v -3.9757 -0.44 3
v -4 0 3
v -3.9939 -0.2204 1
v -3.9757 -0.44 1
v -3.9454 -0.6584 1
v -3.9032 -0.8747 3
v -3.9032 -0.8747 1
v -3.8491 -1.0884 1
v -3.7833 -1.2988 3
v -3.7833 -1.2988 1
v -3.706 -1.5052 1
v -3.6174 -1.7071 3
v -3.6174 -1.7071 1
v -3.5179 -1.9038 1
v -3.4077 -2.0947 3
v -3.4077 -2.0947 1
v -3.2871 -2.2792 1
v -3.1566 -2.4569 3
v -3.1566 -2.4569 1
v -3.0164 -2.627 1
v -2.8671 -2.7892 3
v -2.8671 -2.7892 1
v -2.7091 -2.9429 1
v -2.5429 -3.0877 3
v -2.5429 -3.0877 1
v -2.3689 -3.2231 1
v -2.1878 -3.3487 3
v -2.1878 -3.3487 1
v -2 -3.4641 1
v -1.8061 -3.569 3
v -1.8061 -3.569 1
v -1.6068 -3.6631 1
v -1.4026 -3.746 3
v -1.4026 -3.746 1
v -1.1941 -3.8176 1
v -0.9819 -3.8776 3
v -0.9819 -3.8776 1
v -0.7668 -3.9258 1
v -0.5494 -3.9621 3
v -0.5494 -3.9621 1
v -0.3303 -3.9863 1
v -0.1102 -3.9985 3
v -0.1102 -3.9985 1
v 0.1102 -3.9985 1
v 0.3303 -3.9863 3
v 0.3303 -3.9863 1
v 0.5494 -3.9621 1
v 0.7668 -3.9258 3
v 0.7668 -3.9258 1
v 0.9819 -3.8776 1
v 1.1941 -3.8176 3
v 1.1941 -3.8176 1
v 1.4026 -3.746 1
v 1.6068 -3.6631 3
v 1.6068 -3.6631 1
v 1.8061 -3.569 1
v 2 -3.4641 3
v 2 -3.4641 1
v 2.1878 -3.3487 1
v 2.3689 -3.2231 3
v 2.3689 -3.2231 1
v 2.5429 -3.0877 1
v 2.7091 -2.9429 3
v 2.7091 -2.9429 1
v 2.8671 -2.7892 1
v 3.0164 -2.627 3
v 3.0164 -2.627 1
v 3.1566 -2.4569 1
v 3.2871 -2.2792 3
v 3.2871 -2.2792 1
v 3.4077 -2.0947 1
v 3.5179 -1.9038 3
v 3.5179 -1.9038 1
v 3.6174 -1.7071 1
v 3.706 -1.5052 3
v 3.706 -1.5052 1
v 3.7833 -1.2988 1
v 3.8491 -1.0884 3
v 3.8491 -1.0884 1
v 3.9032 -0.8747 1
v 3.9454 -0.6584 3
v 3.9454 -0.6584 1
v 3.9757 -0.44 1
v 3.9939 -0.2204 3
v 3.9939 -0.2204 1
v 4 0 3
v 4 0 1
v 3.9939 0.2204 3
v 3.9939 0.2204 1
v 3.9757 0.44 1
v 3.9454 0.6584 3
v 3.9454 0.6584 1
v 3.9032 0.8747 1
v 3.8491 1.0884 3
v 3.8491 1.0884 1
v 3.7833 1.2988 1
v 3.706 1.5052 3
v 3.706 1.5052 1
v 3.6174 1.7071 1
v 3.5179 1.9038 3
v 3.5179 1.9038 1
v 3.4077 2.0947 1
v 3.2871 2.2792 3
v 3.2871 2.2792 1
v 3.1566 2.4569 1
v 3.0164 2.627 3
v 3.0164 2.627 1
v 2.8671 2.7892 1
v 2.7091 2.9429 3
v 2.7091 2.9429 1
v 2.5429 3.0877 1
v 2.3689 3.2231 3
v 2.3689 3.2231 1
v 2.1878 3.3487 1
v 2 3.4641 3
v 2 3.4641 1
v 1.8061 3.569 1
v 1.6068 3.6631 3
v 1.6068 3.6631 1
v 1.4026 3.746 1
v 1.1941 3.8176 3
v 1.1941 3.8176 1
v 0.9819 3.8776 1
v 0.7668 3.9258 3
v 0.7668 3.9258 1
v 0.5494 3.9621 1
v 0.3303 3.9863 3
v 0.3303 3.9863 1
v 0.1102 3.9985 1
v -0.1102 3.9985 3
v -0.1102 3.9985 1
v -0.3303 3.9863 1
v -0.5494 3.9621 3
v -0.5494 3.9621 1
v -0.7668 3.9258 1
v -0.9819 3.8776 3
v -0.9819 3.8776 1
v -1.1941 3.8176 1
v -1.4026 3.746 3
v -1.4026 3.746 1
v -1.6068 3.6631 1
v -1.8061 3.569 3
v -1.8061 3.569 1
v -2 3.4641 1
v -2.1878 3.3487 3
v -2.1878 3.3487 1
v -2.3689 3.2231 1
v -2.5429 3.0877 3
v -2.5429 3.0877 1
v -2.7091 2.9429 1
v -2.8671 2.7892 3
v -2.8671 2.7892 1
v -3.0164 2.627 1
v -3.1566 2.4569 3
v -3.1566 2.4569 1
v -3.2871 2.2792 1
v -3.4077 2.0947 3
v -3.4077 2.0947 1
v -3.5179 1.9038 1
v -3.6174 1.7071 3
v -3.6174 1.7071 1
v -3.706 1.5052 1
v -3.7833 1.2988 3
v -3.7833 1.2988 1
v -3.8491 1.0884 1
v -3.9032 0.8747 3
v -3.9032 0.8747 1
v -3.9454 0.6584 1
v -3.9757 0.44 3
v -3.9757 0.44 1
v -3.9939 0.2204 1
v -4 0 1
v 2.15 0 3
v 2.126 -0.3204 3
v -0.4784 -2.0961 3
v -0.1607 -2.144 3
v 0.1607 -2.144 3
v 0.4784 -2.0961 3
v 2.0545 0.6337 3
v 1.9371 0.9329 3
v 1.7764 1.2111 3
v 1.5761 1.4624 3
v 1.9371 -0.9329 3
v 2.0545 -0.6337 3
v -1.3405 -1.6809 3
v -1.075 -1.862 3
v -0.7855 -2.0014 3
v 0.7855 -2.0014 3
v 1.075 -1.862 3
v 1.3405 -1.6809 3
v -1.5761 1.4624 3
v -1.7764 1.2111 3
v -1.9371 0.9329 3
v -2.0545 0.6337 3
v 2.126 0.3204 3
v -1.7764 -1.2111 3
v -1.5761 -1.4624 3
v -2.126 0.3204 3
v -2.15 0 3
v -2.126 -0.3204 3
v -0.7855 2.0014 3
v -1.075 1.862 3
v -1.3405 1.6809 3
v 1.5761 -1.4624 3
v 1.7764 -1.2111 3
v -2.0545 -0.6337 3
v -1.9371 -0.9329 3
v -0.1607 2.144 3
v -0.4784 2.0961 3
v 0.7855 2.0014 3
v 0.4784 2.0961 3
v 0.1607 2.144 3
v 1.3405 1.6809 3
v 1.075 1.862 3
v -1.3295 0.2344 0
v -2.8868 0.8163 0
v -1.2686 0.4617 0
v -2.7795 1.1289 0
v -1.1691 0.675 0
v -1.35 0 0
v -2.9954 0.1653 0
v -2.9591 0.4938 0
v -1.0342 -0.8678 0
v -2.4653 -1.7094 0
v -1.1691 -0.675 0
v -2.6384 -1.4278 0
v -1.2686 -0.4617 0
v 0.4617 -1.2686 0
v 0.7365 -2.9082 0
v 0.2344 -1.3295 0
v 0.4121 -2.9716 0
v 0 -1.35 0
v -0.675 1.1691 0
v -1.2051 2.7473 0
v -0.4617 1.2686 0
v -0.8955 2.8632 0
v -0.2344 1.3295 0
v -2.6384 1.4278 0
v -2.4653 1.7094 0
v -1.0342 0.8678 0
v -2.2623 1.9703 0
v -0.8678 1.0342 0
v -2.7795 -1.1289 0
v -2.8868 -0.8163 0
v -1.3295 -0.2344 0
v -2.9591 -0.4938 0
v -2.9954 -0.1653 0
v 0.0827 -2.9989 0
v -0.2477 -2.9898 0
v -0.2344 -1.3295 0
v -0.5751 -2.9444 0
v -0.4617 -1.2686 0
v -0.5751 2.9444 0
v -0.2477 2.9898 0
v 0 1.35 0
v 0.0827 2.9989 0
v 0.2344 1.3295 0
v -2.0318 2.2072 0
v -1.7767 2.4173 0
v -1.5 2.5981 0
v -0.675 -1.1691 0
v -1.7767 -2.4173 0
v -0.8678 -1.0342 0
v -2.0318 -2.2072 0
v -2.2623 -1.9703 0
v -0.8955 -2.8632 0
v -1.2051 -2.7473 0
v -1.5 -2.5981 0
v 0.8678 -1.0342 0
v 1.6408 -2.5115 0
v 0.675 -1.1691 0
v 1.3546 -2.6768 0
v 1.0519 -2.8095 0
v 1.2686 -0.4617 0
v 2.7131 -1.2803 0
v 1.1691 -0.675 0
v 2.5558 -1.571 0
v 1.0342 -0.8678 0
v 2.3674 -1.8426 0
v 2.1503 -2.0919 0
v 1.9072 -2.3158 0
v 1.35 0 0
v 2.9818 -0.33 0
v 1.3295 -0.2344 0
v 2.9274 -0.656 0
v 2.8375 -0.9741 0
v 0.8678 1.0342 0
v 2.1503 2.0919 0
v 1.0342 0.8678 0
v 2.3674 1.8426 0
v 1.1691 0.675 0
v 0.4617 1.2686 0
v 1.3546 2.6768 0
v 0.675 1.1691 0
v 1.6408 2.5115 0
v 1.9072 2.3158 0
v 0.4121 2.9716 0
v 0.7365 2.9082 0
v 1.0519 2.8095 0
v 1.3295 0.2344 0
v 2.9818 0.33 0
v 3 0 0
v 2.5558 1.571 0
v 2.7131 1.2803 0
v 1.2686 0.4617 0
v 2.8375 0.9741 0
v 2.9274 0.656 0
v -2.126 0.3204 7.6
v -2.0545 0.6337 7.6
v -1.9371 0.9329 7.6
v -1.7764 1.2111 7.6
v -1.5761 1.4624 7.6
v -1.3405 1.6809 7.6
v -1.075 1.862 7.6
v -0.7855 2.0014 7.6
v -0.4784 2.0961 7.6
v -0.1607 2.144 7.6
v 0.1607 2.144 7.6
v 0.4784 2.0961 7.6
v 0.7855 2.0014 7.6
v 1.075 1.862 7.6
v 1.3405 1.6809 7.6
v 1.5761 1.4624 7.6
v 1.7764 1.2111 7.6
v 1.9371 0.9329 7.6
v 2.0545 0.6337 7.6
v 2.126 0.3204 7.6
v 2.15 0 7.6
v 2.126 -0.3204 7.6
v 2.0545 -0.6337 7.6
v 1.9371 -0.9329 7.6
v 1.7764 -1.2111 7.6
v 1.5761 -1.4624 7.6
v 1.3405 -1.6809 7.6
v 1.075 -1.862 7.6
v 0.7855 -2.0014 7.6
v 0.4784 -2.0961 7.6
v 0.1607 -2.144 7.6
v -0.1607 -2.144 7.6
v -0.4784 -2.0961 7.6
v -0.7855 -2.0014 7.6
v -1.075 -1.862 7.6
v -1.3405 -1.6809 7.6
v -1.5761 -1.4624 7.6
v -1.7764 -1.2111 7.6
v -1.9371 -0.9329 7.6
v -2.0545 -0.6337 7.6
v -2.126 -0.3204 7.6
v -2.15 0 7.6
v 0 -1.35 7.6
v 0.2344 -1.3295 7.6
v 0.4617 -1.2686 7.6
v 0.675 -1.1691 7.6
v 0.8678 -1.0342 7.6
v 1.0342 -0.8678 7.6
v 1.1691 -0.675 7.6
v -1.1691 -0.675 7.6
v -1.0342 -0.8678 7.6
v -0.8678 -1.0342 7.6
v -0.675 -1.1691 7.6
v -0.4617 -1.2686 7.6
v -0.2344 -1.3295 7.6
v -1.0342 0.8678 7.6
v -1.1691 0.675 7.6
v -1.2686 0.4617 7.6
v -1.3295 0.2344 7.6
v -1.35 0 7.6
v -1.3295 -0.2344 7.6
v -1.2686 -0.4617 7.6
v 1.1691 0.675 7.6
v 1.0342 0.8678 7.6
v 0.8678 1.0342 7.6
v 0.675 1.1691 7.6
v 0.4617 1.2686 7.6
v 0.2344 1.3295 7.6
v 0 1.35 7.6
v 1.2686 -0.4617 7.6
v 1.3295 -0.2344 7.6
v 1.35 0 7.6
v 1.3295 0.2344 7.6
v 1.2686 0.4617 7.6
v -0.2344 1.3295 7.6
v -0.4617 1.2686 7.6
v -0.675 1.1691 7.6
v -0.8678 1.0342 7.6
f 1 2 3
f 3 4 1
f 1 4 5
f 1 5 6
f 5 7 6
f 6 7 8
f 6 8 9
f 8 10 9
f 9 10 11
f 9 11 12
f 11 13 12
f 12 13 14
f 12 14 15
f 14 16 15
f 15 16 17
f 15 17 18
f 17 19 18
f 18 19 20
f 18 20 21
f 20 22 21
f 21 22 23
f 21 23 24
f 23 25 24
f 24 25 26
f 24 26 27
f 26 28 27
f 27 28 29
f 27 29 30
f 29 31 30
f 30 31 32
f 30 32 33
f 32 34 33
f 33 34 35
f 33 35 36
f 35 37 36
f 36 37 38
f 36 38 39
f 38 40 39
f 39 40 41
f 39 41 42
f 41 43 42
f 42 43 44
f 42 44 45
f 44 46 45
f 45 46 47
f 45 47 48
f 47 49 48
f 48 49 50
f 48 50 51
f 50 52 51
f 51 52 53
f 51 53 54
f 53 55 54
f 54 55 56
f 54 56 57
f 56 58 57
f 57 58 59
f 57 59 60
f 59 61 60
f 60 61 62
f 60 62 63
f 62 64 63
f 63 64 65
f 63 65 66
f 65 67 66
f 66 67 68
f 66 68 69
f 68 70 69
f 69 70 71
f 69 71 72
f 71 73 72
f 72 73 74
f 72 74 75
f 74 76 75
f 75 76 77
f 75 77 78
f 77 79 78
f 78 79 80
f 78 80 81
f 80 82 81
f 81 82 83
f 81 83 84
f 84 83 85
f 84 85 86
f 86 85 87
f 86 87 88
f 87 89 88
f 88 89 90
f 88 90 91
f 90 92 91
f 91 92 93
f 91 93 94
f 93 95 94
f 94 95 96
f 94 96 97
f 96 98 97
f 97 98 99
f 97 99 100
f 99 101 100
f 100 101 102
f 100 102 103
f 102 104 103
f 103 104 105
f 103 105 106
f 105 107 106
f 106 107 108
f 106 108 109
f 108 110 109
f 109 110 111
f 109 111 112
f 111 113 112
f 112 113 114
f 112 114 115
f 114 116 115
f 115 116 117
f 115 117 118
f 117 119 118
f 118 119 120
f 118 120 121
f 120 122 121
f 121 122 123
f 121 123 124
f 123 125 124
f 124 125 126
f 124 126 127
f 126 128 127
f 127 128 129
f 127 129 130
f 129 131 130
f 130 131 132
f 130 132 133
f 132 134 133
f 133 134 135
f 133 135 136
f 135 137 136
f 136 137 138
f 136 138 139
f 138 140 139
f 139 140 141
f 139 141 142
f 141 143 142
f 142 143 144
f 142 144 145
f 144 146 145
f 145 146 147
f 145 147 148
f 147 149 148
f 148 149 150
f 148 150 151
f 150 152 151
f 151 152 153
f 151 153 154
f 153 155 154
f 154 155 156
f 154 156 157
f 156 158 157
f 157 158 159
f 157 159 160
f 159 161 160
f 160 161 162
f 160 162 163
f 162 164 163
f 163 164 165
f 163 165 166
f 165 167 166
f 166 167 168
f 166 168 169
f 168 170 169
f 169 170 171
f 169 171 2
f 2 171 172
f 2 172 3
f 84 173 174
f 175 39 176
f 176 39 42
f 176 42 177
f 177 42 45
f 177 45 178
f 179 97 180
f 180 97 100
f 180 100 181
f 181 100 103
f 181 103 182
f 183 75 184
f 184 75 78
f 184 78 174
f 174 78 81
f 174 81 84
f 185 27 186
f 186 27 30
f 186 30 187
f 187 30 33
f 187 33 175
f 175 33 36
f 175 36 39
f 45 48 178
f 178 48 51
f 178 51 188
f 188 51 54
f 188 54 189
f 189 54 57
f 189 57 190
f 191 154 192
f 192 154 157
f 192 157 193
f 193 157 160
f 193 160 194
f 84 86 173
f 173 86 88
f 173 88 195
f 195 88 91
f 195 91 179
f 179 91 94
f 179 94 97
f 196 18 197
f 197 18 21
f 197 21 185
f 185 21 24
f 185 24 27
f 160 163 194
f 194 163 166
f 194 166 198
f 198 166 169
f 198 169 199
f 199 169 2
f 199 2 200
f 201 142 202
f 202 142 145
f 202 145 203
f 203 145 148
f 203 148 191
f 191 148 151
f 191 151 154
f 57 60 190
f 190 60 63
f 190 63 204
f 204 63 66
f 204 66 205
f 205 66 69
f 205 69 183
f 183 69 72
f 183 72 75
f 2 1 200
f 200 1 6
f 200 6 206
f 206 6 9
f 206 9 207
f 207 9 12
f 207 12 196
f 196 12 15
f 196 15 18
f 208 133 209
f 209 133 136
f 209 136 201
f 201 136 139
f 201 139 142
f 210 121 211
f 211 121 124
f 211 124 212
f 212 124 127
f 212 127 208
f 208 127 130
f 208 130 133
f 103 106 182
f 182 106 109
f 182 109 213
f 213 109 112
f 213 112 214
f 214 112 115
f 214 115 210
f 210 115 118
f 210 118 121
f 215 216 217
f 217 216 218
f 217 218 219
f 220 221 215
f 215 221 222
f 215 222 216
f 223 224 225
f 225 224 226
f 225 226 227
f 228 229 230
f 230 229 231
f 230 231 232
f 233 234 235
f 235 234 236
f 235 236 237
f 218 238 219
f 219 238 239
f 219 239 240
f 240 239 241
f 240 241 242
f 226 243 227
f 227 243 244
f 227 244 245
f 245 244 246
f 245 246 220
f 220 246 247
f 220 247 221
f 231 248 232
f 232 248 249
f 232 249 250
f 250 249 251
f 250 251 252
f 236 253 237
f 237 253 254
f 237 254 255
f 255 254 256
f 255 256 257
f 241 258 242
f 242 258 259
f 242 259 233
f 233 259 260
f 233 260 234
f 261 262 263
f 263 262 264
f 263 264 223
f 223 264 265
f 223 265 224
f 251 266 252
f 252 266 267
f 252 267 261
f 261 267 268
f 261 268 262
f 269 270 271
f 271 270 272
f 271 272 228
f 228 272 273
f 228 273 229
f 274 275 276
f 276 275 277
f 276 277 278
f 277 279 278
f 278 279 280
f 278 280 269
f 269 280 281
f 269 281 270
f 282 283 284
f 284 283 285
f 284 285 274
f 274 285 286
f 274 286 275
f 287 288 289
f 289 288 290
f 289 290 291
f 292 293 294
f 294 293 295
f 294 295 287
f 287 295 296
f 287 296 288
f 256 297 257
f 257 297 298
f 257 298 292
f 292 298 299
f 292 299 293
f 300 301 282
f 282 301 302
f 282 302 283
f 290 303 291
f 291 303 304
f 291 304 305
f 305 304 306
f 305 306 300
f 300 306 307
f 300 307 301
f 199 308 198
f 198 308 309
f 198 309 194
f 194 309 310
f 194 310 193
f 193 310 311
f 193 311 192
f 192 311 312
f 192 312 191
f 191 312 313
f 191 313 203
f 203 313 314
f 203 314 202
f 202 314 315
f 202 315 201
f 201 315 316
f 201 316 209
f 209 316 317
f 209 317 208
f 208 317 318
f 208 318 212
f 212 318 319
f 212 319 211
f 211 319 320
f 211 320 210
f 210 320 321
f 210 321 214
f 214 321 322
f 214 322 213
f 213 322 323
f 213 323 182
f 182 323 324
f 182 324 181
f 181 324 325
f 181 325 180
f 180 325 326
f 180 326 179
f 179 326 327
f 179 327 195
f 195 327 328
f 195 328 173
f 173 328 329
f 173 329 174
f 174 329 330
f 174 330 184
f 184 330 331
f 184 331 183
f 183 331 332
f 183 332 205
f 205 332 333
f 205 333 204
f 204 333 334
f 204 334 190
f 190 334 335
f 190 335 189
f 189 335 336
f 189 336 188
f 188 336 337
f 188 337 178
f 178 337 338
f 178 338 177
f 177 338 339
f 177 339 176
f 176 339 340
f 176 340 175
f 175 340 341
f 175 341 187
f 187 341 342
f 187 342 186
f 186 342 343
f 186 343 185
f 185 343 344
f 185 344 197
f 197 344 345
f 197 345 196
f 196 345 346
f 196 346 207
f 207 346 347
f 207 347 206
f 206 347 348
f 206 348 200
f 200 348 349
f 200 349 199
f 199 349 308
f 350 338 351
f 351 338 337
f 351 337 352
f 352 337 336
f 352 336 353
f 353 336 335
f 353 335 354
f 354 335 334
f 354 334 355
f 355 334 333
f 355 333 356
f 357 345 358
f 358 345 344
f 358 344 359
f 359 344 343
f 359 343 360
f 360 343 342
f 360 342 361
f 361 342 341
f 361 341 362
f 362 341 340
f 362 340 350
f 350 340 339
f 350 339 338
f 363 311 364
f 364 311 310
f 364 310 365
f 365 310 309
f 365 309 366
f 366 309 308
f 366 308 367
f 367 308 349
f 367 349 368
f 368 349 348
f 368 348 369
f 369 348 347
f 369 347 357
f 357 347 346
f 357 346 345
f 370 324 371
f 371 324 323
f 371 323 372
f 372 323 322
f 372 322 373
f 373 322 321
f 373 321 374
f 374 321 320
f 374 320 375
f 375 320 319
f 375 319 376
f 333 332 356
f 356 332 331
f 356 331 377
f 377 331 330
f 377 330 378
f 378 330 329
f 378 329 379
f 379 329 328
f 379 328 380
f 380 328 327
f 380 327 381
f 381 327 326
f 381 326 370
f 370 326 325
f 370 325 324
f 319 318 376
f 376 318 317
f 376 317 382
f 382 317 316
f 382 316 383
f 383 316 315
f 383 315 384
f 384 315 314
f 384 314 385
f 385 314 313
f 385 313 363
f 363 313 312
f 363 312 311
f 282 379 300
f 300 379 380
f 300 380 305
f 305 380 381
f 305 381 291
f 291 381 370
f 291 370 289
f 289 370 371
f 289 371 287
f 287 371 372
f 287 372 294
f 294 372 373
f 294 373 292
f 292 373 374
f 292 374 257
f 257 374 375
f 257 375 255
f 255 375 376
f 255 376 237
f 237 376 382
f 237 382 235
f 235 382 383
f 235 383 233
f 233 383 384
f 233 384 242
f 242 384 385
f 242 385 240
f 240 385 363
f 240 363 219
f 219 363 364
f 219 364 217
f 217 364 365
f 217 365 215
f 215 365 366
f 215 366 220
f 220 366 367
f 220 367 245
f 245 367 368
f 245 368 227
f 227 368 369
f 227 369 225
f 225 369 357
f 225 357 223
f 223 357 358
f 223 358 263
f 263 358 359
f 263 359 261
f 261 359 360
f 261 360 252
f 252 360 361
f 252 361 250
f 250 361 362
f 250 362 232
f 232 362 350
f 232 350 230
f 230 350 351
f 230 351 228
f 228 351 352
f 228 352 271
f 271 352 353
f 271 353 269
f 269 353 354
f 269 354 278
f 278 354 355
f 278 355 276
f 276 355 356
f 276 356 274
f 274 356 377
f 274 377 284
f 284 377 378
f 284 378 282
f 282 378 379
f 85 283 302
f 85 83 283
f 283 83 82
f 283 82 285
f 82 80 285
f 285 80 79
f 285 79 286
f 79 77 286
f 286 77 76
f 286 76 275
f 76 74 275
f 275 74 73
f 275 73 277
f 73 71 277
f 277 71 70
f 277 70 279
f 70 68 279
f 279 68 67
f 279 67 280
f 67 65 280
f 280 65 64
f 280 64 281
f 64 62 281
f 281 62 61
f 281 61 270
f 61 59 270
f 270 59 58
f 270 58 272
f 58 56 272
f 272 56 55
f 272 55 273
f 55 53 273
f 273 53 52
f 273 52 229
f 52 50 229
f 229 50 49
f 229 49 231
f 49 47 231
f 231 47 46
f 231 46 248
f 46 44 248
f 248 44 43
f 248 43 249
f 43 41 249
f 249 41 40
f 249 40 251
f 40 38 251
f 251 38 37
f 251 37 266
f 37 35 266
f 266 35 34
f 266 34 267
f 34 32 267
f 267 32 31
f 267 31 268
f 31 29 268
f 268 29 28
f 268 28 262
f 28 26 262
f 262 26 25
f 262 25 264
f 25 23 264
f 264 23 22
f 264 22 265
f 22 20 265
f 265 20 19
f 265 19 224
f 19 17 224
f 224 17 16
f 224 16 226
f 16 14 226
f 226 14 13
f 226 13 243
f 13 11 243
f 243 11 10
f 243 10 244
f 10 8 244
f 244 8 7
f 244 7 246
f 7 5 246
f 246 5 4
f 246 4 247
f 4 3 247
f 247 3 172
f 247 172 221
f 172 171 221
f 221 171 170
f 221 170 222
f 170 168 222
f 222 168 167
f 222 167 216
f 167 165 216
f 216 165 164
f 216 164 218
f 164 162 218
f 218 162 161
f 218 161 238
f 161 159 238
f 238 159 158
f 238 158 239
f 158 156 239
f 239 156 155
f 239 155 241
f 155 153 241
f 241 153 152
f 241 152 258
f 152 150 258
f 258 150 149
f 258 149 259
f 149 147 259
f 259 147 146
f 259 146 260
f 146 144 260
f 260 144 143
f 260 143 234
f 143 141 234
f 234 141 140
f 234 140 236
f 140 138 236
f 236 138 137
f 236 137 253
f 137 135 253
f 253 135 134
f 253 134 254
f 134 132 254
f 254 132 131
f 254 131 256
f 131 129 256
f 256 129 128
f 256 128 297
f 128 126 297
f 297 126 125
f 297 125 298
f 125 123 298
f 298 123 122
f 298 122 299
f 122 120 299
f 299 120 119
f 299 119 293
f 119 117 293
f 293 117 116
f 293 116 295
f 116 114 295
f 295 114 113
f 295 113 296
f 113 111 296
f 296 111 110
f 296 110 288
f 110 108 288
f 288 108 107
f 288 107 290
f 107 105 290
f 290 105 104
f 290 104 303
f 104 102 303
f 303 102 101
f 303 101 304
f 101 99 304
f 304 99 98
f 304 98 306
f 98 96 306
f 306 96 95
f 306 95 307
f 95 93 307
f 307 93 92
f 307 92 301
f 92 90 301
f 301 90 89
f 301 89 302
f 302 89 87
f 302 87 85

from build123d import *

# Parameters (mm, degrees)
SKETCH1_R           = 4
BOSS_EXTRUDE1_DEPTH = 3
SKETCH2_R           = 2.15
BOSS_EXTRUDE2_DEPTH = 4.6
SKETCH3_R           = 1.35
CUT_EXTRUDE1_DEPTH  = 10.474175426
CHAMFER1_SIZE       = 1


with BuildPart() as part:
    # Sketch1 → Boss-Extrude1 (new body)
    with BuildSketch(Plane.XY):
        Circle(SKETCH1_R)
    extrude(amount=BOSS_EXTRUDE1_DEPTH)

    # Sketch2 → Boss-Extrude2 (add)
    with BuildSketch(Plane.XY.offset(3)):
        Circle(SKETCH2_R)
    extrude(amount=BOSS_EXTRUDE2_DEPTH)

    # Sketch3 → Cut-Extrude1 (cut, through all)
    with BuildSketch(Plane.XY.offset(7.6)):
        Circle(SKETCH3_R)
    extrude(amount=-CUT_EXTRUDE1_DEPTH, mode=Mode.SUBTRACT)

    # Chamfer1
    chamfer1_edges = [part.edges().sort_by_distance(p)[0] for p in [
        (-4, 0, 0),
    ]]
    chamfer(chamfer1_edges, length=CHAMFER1_SIZE)


solid = part.part
